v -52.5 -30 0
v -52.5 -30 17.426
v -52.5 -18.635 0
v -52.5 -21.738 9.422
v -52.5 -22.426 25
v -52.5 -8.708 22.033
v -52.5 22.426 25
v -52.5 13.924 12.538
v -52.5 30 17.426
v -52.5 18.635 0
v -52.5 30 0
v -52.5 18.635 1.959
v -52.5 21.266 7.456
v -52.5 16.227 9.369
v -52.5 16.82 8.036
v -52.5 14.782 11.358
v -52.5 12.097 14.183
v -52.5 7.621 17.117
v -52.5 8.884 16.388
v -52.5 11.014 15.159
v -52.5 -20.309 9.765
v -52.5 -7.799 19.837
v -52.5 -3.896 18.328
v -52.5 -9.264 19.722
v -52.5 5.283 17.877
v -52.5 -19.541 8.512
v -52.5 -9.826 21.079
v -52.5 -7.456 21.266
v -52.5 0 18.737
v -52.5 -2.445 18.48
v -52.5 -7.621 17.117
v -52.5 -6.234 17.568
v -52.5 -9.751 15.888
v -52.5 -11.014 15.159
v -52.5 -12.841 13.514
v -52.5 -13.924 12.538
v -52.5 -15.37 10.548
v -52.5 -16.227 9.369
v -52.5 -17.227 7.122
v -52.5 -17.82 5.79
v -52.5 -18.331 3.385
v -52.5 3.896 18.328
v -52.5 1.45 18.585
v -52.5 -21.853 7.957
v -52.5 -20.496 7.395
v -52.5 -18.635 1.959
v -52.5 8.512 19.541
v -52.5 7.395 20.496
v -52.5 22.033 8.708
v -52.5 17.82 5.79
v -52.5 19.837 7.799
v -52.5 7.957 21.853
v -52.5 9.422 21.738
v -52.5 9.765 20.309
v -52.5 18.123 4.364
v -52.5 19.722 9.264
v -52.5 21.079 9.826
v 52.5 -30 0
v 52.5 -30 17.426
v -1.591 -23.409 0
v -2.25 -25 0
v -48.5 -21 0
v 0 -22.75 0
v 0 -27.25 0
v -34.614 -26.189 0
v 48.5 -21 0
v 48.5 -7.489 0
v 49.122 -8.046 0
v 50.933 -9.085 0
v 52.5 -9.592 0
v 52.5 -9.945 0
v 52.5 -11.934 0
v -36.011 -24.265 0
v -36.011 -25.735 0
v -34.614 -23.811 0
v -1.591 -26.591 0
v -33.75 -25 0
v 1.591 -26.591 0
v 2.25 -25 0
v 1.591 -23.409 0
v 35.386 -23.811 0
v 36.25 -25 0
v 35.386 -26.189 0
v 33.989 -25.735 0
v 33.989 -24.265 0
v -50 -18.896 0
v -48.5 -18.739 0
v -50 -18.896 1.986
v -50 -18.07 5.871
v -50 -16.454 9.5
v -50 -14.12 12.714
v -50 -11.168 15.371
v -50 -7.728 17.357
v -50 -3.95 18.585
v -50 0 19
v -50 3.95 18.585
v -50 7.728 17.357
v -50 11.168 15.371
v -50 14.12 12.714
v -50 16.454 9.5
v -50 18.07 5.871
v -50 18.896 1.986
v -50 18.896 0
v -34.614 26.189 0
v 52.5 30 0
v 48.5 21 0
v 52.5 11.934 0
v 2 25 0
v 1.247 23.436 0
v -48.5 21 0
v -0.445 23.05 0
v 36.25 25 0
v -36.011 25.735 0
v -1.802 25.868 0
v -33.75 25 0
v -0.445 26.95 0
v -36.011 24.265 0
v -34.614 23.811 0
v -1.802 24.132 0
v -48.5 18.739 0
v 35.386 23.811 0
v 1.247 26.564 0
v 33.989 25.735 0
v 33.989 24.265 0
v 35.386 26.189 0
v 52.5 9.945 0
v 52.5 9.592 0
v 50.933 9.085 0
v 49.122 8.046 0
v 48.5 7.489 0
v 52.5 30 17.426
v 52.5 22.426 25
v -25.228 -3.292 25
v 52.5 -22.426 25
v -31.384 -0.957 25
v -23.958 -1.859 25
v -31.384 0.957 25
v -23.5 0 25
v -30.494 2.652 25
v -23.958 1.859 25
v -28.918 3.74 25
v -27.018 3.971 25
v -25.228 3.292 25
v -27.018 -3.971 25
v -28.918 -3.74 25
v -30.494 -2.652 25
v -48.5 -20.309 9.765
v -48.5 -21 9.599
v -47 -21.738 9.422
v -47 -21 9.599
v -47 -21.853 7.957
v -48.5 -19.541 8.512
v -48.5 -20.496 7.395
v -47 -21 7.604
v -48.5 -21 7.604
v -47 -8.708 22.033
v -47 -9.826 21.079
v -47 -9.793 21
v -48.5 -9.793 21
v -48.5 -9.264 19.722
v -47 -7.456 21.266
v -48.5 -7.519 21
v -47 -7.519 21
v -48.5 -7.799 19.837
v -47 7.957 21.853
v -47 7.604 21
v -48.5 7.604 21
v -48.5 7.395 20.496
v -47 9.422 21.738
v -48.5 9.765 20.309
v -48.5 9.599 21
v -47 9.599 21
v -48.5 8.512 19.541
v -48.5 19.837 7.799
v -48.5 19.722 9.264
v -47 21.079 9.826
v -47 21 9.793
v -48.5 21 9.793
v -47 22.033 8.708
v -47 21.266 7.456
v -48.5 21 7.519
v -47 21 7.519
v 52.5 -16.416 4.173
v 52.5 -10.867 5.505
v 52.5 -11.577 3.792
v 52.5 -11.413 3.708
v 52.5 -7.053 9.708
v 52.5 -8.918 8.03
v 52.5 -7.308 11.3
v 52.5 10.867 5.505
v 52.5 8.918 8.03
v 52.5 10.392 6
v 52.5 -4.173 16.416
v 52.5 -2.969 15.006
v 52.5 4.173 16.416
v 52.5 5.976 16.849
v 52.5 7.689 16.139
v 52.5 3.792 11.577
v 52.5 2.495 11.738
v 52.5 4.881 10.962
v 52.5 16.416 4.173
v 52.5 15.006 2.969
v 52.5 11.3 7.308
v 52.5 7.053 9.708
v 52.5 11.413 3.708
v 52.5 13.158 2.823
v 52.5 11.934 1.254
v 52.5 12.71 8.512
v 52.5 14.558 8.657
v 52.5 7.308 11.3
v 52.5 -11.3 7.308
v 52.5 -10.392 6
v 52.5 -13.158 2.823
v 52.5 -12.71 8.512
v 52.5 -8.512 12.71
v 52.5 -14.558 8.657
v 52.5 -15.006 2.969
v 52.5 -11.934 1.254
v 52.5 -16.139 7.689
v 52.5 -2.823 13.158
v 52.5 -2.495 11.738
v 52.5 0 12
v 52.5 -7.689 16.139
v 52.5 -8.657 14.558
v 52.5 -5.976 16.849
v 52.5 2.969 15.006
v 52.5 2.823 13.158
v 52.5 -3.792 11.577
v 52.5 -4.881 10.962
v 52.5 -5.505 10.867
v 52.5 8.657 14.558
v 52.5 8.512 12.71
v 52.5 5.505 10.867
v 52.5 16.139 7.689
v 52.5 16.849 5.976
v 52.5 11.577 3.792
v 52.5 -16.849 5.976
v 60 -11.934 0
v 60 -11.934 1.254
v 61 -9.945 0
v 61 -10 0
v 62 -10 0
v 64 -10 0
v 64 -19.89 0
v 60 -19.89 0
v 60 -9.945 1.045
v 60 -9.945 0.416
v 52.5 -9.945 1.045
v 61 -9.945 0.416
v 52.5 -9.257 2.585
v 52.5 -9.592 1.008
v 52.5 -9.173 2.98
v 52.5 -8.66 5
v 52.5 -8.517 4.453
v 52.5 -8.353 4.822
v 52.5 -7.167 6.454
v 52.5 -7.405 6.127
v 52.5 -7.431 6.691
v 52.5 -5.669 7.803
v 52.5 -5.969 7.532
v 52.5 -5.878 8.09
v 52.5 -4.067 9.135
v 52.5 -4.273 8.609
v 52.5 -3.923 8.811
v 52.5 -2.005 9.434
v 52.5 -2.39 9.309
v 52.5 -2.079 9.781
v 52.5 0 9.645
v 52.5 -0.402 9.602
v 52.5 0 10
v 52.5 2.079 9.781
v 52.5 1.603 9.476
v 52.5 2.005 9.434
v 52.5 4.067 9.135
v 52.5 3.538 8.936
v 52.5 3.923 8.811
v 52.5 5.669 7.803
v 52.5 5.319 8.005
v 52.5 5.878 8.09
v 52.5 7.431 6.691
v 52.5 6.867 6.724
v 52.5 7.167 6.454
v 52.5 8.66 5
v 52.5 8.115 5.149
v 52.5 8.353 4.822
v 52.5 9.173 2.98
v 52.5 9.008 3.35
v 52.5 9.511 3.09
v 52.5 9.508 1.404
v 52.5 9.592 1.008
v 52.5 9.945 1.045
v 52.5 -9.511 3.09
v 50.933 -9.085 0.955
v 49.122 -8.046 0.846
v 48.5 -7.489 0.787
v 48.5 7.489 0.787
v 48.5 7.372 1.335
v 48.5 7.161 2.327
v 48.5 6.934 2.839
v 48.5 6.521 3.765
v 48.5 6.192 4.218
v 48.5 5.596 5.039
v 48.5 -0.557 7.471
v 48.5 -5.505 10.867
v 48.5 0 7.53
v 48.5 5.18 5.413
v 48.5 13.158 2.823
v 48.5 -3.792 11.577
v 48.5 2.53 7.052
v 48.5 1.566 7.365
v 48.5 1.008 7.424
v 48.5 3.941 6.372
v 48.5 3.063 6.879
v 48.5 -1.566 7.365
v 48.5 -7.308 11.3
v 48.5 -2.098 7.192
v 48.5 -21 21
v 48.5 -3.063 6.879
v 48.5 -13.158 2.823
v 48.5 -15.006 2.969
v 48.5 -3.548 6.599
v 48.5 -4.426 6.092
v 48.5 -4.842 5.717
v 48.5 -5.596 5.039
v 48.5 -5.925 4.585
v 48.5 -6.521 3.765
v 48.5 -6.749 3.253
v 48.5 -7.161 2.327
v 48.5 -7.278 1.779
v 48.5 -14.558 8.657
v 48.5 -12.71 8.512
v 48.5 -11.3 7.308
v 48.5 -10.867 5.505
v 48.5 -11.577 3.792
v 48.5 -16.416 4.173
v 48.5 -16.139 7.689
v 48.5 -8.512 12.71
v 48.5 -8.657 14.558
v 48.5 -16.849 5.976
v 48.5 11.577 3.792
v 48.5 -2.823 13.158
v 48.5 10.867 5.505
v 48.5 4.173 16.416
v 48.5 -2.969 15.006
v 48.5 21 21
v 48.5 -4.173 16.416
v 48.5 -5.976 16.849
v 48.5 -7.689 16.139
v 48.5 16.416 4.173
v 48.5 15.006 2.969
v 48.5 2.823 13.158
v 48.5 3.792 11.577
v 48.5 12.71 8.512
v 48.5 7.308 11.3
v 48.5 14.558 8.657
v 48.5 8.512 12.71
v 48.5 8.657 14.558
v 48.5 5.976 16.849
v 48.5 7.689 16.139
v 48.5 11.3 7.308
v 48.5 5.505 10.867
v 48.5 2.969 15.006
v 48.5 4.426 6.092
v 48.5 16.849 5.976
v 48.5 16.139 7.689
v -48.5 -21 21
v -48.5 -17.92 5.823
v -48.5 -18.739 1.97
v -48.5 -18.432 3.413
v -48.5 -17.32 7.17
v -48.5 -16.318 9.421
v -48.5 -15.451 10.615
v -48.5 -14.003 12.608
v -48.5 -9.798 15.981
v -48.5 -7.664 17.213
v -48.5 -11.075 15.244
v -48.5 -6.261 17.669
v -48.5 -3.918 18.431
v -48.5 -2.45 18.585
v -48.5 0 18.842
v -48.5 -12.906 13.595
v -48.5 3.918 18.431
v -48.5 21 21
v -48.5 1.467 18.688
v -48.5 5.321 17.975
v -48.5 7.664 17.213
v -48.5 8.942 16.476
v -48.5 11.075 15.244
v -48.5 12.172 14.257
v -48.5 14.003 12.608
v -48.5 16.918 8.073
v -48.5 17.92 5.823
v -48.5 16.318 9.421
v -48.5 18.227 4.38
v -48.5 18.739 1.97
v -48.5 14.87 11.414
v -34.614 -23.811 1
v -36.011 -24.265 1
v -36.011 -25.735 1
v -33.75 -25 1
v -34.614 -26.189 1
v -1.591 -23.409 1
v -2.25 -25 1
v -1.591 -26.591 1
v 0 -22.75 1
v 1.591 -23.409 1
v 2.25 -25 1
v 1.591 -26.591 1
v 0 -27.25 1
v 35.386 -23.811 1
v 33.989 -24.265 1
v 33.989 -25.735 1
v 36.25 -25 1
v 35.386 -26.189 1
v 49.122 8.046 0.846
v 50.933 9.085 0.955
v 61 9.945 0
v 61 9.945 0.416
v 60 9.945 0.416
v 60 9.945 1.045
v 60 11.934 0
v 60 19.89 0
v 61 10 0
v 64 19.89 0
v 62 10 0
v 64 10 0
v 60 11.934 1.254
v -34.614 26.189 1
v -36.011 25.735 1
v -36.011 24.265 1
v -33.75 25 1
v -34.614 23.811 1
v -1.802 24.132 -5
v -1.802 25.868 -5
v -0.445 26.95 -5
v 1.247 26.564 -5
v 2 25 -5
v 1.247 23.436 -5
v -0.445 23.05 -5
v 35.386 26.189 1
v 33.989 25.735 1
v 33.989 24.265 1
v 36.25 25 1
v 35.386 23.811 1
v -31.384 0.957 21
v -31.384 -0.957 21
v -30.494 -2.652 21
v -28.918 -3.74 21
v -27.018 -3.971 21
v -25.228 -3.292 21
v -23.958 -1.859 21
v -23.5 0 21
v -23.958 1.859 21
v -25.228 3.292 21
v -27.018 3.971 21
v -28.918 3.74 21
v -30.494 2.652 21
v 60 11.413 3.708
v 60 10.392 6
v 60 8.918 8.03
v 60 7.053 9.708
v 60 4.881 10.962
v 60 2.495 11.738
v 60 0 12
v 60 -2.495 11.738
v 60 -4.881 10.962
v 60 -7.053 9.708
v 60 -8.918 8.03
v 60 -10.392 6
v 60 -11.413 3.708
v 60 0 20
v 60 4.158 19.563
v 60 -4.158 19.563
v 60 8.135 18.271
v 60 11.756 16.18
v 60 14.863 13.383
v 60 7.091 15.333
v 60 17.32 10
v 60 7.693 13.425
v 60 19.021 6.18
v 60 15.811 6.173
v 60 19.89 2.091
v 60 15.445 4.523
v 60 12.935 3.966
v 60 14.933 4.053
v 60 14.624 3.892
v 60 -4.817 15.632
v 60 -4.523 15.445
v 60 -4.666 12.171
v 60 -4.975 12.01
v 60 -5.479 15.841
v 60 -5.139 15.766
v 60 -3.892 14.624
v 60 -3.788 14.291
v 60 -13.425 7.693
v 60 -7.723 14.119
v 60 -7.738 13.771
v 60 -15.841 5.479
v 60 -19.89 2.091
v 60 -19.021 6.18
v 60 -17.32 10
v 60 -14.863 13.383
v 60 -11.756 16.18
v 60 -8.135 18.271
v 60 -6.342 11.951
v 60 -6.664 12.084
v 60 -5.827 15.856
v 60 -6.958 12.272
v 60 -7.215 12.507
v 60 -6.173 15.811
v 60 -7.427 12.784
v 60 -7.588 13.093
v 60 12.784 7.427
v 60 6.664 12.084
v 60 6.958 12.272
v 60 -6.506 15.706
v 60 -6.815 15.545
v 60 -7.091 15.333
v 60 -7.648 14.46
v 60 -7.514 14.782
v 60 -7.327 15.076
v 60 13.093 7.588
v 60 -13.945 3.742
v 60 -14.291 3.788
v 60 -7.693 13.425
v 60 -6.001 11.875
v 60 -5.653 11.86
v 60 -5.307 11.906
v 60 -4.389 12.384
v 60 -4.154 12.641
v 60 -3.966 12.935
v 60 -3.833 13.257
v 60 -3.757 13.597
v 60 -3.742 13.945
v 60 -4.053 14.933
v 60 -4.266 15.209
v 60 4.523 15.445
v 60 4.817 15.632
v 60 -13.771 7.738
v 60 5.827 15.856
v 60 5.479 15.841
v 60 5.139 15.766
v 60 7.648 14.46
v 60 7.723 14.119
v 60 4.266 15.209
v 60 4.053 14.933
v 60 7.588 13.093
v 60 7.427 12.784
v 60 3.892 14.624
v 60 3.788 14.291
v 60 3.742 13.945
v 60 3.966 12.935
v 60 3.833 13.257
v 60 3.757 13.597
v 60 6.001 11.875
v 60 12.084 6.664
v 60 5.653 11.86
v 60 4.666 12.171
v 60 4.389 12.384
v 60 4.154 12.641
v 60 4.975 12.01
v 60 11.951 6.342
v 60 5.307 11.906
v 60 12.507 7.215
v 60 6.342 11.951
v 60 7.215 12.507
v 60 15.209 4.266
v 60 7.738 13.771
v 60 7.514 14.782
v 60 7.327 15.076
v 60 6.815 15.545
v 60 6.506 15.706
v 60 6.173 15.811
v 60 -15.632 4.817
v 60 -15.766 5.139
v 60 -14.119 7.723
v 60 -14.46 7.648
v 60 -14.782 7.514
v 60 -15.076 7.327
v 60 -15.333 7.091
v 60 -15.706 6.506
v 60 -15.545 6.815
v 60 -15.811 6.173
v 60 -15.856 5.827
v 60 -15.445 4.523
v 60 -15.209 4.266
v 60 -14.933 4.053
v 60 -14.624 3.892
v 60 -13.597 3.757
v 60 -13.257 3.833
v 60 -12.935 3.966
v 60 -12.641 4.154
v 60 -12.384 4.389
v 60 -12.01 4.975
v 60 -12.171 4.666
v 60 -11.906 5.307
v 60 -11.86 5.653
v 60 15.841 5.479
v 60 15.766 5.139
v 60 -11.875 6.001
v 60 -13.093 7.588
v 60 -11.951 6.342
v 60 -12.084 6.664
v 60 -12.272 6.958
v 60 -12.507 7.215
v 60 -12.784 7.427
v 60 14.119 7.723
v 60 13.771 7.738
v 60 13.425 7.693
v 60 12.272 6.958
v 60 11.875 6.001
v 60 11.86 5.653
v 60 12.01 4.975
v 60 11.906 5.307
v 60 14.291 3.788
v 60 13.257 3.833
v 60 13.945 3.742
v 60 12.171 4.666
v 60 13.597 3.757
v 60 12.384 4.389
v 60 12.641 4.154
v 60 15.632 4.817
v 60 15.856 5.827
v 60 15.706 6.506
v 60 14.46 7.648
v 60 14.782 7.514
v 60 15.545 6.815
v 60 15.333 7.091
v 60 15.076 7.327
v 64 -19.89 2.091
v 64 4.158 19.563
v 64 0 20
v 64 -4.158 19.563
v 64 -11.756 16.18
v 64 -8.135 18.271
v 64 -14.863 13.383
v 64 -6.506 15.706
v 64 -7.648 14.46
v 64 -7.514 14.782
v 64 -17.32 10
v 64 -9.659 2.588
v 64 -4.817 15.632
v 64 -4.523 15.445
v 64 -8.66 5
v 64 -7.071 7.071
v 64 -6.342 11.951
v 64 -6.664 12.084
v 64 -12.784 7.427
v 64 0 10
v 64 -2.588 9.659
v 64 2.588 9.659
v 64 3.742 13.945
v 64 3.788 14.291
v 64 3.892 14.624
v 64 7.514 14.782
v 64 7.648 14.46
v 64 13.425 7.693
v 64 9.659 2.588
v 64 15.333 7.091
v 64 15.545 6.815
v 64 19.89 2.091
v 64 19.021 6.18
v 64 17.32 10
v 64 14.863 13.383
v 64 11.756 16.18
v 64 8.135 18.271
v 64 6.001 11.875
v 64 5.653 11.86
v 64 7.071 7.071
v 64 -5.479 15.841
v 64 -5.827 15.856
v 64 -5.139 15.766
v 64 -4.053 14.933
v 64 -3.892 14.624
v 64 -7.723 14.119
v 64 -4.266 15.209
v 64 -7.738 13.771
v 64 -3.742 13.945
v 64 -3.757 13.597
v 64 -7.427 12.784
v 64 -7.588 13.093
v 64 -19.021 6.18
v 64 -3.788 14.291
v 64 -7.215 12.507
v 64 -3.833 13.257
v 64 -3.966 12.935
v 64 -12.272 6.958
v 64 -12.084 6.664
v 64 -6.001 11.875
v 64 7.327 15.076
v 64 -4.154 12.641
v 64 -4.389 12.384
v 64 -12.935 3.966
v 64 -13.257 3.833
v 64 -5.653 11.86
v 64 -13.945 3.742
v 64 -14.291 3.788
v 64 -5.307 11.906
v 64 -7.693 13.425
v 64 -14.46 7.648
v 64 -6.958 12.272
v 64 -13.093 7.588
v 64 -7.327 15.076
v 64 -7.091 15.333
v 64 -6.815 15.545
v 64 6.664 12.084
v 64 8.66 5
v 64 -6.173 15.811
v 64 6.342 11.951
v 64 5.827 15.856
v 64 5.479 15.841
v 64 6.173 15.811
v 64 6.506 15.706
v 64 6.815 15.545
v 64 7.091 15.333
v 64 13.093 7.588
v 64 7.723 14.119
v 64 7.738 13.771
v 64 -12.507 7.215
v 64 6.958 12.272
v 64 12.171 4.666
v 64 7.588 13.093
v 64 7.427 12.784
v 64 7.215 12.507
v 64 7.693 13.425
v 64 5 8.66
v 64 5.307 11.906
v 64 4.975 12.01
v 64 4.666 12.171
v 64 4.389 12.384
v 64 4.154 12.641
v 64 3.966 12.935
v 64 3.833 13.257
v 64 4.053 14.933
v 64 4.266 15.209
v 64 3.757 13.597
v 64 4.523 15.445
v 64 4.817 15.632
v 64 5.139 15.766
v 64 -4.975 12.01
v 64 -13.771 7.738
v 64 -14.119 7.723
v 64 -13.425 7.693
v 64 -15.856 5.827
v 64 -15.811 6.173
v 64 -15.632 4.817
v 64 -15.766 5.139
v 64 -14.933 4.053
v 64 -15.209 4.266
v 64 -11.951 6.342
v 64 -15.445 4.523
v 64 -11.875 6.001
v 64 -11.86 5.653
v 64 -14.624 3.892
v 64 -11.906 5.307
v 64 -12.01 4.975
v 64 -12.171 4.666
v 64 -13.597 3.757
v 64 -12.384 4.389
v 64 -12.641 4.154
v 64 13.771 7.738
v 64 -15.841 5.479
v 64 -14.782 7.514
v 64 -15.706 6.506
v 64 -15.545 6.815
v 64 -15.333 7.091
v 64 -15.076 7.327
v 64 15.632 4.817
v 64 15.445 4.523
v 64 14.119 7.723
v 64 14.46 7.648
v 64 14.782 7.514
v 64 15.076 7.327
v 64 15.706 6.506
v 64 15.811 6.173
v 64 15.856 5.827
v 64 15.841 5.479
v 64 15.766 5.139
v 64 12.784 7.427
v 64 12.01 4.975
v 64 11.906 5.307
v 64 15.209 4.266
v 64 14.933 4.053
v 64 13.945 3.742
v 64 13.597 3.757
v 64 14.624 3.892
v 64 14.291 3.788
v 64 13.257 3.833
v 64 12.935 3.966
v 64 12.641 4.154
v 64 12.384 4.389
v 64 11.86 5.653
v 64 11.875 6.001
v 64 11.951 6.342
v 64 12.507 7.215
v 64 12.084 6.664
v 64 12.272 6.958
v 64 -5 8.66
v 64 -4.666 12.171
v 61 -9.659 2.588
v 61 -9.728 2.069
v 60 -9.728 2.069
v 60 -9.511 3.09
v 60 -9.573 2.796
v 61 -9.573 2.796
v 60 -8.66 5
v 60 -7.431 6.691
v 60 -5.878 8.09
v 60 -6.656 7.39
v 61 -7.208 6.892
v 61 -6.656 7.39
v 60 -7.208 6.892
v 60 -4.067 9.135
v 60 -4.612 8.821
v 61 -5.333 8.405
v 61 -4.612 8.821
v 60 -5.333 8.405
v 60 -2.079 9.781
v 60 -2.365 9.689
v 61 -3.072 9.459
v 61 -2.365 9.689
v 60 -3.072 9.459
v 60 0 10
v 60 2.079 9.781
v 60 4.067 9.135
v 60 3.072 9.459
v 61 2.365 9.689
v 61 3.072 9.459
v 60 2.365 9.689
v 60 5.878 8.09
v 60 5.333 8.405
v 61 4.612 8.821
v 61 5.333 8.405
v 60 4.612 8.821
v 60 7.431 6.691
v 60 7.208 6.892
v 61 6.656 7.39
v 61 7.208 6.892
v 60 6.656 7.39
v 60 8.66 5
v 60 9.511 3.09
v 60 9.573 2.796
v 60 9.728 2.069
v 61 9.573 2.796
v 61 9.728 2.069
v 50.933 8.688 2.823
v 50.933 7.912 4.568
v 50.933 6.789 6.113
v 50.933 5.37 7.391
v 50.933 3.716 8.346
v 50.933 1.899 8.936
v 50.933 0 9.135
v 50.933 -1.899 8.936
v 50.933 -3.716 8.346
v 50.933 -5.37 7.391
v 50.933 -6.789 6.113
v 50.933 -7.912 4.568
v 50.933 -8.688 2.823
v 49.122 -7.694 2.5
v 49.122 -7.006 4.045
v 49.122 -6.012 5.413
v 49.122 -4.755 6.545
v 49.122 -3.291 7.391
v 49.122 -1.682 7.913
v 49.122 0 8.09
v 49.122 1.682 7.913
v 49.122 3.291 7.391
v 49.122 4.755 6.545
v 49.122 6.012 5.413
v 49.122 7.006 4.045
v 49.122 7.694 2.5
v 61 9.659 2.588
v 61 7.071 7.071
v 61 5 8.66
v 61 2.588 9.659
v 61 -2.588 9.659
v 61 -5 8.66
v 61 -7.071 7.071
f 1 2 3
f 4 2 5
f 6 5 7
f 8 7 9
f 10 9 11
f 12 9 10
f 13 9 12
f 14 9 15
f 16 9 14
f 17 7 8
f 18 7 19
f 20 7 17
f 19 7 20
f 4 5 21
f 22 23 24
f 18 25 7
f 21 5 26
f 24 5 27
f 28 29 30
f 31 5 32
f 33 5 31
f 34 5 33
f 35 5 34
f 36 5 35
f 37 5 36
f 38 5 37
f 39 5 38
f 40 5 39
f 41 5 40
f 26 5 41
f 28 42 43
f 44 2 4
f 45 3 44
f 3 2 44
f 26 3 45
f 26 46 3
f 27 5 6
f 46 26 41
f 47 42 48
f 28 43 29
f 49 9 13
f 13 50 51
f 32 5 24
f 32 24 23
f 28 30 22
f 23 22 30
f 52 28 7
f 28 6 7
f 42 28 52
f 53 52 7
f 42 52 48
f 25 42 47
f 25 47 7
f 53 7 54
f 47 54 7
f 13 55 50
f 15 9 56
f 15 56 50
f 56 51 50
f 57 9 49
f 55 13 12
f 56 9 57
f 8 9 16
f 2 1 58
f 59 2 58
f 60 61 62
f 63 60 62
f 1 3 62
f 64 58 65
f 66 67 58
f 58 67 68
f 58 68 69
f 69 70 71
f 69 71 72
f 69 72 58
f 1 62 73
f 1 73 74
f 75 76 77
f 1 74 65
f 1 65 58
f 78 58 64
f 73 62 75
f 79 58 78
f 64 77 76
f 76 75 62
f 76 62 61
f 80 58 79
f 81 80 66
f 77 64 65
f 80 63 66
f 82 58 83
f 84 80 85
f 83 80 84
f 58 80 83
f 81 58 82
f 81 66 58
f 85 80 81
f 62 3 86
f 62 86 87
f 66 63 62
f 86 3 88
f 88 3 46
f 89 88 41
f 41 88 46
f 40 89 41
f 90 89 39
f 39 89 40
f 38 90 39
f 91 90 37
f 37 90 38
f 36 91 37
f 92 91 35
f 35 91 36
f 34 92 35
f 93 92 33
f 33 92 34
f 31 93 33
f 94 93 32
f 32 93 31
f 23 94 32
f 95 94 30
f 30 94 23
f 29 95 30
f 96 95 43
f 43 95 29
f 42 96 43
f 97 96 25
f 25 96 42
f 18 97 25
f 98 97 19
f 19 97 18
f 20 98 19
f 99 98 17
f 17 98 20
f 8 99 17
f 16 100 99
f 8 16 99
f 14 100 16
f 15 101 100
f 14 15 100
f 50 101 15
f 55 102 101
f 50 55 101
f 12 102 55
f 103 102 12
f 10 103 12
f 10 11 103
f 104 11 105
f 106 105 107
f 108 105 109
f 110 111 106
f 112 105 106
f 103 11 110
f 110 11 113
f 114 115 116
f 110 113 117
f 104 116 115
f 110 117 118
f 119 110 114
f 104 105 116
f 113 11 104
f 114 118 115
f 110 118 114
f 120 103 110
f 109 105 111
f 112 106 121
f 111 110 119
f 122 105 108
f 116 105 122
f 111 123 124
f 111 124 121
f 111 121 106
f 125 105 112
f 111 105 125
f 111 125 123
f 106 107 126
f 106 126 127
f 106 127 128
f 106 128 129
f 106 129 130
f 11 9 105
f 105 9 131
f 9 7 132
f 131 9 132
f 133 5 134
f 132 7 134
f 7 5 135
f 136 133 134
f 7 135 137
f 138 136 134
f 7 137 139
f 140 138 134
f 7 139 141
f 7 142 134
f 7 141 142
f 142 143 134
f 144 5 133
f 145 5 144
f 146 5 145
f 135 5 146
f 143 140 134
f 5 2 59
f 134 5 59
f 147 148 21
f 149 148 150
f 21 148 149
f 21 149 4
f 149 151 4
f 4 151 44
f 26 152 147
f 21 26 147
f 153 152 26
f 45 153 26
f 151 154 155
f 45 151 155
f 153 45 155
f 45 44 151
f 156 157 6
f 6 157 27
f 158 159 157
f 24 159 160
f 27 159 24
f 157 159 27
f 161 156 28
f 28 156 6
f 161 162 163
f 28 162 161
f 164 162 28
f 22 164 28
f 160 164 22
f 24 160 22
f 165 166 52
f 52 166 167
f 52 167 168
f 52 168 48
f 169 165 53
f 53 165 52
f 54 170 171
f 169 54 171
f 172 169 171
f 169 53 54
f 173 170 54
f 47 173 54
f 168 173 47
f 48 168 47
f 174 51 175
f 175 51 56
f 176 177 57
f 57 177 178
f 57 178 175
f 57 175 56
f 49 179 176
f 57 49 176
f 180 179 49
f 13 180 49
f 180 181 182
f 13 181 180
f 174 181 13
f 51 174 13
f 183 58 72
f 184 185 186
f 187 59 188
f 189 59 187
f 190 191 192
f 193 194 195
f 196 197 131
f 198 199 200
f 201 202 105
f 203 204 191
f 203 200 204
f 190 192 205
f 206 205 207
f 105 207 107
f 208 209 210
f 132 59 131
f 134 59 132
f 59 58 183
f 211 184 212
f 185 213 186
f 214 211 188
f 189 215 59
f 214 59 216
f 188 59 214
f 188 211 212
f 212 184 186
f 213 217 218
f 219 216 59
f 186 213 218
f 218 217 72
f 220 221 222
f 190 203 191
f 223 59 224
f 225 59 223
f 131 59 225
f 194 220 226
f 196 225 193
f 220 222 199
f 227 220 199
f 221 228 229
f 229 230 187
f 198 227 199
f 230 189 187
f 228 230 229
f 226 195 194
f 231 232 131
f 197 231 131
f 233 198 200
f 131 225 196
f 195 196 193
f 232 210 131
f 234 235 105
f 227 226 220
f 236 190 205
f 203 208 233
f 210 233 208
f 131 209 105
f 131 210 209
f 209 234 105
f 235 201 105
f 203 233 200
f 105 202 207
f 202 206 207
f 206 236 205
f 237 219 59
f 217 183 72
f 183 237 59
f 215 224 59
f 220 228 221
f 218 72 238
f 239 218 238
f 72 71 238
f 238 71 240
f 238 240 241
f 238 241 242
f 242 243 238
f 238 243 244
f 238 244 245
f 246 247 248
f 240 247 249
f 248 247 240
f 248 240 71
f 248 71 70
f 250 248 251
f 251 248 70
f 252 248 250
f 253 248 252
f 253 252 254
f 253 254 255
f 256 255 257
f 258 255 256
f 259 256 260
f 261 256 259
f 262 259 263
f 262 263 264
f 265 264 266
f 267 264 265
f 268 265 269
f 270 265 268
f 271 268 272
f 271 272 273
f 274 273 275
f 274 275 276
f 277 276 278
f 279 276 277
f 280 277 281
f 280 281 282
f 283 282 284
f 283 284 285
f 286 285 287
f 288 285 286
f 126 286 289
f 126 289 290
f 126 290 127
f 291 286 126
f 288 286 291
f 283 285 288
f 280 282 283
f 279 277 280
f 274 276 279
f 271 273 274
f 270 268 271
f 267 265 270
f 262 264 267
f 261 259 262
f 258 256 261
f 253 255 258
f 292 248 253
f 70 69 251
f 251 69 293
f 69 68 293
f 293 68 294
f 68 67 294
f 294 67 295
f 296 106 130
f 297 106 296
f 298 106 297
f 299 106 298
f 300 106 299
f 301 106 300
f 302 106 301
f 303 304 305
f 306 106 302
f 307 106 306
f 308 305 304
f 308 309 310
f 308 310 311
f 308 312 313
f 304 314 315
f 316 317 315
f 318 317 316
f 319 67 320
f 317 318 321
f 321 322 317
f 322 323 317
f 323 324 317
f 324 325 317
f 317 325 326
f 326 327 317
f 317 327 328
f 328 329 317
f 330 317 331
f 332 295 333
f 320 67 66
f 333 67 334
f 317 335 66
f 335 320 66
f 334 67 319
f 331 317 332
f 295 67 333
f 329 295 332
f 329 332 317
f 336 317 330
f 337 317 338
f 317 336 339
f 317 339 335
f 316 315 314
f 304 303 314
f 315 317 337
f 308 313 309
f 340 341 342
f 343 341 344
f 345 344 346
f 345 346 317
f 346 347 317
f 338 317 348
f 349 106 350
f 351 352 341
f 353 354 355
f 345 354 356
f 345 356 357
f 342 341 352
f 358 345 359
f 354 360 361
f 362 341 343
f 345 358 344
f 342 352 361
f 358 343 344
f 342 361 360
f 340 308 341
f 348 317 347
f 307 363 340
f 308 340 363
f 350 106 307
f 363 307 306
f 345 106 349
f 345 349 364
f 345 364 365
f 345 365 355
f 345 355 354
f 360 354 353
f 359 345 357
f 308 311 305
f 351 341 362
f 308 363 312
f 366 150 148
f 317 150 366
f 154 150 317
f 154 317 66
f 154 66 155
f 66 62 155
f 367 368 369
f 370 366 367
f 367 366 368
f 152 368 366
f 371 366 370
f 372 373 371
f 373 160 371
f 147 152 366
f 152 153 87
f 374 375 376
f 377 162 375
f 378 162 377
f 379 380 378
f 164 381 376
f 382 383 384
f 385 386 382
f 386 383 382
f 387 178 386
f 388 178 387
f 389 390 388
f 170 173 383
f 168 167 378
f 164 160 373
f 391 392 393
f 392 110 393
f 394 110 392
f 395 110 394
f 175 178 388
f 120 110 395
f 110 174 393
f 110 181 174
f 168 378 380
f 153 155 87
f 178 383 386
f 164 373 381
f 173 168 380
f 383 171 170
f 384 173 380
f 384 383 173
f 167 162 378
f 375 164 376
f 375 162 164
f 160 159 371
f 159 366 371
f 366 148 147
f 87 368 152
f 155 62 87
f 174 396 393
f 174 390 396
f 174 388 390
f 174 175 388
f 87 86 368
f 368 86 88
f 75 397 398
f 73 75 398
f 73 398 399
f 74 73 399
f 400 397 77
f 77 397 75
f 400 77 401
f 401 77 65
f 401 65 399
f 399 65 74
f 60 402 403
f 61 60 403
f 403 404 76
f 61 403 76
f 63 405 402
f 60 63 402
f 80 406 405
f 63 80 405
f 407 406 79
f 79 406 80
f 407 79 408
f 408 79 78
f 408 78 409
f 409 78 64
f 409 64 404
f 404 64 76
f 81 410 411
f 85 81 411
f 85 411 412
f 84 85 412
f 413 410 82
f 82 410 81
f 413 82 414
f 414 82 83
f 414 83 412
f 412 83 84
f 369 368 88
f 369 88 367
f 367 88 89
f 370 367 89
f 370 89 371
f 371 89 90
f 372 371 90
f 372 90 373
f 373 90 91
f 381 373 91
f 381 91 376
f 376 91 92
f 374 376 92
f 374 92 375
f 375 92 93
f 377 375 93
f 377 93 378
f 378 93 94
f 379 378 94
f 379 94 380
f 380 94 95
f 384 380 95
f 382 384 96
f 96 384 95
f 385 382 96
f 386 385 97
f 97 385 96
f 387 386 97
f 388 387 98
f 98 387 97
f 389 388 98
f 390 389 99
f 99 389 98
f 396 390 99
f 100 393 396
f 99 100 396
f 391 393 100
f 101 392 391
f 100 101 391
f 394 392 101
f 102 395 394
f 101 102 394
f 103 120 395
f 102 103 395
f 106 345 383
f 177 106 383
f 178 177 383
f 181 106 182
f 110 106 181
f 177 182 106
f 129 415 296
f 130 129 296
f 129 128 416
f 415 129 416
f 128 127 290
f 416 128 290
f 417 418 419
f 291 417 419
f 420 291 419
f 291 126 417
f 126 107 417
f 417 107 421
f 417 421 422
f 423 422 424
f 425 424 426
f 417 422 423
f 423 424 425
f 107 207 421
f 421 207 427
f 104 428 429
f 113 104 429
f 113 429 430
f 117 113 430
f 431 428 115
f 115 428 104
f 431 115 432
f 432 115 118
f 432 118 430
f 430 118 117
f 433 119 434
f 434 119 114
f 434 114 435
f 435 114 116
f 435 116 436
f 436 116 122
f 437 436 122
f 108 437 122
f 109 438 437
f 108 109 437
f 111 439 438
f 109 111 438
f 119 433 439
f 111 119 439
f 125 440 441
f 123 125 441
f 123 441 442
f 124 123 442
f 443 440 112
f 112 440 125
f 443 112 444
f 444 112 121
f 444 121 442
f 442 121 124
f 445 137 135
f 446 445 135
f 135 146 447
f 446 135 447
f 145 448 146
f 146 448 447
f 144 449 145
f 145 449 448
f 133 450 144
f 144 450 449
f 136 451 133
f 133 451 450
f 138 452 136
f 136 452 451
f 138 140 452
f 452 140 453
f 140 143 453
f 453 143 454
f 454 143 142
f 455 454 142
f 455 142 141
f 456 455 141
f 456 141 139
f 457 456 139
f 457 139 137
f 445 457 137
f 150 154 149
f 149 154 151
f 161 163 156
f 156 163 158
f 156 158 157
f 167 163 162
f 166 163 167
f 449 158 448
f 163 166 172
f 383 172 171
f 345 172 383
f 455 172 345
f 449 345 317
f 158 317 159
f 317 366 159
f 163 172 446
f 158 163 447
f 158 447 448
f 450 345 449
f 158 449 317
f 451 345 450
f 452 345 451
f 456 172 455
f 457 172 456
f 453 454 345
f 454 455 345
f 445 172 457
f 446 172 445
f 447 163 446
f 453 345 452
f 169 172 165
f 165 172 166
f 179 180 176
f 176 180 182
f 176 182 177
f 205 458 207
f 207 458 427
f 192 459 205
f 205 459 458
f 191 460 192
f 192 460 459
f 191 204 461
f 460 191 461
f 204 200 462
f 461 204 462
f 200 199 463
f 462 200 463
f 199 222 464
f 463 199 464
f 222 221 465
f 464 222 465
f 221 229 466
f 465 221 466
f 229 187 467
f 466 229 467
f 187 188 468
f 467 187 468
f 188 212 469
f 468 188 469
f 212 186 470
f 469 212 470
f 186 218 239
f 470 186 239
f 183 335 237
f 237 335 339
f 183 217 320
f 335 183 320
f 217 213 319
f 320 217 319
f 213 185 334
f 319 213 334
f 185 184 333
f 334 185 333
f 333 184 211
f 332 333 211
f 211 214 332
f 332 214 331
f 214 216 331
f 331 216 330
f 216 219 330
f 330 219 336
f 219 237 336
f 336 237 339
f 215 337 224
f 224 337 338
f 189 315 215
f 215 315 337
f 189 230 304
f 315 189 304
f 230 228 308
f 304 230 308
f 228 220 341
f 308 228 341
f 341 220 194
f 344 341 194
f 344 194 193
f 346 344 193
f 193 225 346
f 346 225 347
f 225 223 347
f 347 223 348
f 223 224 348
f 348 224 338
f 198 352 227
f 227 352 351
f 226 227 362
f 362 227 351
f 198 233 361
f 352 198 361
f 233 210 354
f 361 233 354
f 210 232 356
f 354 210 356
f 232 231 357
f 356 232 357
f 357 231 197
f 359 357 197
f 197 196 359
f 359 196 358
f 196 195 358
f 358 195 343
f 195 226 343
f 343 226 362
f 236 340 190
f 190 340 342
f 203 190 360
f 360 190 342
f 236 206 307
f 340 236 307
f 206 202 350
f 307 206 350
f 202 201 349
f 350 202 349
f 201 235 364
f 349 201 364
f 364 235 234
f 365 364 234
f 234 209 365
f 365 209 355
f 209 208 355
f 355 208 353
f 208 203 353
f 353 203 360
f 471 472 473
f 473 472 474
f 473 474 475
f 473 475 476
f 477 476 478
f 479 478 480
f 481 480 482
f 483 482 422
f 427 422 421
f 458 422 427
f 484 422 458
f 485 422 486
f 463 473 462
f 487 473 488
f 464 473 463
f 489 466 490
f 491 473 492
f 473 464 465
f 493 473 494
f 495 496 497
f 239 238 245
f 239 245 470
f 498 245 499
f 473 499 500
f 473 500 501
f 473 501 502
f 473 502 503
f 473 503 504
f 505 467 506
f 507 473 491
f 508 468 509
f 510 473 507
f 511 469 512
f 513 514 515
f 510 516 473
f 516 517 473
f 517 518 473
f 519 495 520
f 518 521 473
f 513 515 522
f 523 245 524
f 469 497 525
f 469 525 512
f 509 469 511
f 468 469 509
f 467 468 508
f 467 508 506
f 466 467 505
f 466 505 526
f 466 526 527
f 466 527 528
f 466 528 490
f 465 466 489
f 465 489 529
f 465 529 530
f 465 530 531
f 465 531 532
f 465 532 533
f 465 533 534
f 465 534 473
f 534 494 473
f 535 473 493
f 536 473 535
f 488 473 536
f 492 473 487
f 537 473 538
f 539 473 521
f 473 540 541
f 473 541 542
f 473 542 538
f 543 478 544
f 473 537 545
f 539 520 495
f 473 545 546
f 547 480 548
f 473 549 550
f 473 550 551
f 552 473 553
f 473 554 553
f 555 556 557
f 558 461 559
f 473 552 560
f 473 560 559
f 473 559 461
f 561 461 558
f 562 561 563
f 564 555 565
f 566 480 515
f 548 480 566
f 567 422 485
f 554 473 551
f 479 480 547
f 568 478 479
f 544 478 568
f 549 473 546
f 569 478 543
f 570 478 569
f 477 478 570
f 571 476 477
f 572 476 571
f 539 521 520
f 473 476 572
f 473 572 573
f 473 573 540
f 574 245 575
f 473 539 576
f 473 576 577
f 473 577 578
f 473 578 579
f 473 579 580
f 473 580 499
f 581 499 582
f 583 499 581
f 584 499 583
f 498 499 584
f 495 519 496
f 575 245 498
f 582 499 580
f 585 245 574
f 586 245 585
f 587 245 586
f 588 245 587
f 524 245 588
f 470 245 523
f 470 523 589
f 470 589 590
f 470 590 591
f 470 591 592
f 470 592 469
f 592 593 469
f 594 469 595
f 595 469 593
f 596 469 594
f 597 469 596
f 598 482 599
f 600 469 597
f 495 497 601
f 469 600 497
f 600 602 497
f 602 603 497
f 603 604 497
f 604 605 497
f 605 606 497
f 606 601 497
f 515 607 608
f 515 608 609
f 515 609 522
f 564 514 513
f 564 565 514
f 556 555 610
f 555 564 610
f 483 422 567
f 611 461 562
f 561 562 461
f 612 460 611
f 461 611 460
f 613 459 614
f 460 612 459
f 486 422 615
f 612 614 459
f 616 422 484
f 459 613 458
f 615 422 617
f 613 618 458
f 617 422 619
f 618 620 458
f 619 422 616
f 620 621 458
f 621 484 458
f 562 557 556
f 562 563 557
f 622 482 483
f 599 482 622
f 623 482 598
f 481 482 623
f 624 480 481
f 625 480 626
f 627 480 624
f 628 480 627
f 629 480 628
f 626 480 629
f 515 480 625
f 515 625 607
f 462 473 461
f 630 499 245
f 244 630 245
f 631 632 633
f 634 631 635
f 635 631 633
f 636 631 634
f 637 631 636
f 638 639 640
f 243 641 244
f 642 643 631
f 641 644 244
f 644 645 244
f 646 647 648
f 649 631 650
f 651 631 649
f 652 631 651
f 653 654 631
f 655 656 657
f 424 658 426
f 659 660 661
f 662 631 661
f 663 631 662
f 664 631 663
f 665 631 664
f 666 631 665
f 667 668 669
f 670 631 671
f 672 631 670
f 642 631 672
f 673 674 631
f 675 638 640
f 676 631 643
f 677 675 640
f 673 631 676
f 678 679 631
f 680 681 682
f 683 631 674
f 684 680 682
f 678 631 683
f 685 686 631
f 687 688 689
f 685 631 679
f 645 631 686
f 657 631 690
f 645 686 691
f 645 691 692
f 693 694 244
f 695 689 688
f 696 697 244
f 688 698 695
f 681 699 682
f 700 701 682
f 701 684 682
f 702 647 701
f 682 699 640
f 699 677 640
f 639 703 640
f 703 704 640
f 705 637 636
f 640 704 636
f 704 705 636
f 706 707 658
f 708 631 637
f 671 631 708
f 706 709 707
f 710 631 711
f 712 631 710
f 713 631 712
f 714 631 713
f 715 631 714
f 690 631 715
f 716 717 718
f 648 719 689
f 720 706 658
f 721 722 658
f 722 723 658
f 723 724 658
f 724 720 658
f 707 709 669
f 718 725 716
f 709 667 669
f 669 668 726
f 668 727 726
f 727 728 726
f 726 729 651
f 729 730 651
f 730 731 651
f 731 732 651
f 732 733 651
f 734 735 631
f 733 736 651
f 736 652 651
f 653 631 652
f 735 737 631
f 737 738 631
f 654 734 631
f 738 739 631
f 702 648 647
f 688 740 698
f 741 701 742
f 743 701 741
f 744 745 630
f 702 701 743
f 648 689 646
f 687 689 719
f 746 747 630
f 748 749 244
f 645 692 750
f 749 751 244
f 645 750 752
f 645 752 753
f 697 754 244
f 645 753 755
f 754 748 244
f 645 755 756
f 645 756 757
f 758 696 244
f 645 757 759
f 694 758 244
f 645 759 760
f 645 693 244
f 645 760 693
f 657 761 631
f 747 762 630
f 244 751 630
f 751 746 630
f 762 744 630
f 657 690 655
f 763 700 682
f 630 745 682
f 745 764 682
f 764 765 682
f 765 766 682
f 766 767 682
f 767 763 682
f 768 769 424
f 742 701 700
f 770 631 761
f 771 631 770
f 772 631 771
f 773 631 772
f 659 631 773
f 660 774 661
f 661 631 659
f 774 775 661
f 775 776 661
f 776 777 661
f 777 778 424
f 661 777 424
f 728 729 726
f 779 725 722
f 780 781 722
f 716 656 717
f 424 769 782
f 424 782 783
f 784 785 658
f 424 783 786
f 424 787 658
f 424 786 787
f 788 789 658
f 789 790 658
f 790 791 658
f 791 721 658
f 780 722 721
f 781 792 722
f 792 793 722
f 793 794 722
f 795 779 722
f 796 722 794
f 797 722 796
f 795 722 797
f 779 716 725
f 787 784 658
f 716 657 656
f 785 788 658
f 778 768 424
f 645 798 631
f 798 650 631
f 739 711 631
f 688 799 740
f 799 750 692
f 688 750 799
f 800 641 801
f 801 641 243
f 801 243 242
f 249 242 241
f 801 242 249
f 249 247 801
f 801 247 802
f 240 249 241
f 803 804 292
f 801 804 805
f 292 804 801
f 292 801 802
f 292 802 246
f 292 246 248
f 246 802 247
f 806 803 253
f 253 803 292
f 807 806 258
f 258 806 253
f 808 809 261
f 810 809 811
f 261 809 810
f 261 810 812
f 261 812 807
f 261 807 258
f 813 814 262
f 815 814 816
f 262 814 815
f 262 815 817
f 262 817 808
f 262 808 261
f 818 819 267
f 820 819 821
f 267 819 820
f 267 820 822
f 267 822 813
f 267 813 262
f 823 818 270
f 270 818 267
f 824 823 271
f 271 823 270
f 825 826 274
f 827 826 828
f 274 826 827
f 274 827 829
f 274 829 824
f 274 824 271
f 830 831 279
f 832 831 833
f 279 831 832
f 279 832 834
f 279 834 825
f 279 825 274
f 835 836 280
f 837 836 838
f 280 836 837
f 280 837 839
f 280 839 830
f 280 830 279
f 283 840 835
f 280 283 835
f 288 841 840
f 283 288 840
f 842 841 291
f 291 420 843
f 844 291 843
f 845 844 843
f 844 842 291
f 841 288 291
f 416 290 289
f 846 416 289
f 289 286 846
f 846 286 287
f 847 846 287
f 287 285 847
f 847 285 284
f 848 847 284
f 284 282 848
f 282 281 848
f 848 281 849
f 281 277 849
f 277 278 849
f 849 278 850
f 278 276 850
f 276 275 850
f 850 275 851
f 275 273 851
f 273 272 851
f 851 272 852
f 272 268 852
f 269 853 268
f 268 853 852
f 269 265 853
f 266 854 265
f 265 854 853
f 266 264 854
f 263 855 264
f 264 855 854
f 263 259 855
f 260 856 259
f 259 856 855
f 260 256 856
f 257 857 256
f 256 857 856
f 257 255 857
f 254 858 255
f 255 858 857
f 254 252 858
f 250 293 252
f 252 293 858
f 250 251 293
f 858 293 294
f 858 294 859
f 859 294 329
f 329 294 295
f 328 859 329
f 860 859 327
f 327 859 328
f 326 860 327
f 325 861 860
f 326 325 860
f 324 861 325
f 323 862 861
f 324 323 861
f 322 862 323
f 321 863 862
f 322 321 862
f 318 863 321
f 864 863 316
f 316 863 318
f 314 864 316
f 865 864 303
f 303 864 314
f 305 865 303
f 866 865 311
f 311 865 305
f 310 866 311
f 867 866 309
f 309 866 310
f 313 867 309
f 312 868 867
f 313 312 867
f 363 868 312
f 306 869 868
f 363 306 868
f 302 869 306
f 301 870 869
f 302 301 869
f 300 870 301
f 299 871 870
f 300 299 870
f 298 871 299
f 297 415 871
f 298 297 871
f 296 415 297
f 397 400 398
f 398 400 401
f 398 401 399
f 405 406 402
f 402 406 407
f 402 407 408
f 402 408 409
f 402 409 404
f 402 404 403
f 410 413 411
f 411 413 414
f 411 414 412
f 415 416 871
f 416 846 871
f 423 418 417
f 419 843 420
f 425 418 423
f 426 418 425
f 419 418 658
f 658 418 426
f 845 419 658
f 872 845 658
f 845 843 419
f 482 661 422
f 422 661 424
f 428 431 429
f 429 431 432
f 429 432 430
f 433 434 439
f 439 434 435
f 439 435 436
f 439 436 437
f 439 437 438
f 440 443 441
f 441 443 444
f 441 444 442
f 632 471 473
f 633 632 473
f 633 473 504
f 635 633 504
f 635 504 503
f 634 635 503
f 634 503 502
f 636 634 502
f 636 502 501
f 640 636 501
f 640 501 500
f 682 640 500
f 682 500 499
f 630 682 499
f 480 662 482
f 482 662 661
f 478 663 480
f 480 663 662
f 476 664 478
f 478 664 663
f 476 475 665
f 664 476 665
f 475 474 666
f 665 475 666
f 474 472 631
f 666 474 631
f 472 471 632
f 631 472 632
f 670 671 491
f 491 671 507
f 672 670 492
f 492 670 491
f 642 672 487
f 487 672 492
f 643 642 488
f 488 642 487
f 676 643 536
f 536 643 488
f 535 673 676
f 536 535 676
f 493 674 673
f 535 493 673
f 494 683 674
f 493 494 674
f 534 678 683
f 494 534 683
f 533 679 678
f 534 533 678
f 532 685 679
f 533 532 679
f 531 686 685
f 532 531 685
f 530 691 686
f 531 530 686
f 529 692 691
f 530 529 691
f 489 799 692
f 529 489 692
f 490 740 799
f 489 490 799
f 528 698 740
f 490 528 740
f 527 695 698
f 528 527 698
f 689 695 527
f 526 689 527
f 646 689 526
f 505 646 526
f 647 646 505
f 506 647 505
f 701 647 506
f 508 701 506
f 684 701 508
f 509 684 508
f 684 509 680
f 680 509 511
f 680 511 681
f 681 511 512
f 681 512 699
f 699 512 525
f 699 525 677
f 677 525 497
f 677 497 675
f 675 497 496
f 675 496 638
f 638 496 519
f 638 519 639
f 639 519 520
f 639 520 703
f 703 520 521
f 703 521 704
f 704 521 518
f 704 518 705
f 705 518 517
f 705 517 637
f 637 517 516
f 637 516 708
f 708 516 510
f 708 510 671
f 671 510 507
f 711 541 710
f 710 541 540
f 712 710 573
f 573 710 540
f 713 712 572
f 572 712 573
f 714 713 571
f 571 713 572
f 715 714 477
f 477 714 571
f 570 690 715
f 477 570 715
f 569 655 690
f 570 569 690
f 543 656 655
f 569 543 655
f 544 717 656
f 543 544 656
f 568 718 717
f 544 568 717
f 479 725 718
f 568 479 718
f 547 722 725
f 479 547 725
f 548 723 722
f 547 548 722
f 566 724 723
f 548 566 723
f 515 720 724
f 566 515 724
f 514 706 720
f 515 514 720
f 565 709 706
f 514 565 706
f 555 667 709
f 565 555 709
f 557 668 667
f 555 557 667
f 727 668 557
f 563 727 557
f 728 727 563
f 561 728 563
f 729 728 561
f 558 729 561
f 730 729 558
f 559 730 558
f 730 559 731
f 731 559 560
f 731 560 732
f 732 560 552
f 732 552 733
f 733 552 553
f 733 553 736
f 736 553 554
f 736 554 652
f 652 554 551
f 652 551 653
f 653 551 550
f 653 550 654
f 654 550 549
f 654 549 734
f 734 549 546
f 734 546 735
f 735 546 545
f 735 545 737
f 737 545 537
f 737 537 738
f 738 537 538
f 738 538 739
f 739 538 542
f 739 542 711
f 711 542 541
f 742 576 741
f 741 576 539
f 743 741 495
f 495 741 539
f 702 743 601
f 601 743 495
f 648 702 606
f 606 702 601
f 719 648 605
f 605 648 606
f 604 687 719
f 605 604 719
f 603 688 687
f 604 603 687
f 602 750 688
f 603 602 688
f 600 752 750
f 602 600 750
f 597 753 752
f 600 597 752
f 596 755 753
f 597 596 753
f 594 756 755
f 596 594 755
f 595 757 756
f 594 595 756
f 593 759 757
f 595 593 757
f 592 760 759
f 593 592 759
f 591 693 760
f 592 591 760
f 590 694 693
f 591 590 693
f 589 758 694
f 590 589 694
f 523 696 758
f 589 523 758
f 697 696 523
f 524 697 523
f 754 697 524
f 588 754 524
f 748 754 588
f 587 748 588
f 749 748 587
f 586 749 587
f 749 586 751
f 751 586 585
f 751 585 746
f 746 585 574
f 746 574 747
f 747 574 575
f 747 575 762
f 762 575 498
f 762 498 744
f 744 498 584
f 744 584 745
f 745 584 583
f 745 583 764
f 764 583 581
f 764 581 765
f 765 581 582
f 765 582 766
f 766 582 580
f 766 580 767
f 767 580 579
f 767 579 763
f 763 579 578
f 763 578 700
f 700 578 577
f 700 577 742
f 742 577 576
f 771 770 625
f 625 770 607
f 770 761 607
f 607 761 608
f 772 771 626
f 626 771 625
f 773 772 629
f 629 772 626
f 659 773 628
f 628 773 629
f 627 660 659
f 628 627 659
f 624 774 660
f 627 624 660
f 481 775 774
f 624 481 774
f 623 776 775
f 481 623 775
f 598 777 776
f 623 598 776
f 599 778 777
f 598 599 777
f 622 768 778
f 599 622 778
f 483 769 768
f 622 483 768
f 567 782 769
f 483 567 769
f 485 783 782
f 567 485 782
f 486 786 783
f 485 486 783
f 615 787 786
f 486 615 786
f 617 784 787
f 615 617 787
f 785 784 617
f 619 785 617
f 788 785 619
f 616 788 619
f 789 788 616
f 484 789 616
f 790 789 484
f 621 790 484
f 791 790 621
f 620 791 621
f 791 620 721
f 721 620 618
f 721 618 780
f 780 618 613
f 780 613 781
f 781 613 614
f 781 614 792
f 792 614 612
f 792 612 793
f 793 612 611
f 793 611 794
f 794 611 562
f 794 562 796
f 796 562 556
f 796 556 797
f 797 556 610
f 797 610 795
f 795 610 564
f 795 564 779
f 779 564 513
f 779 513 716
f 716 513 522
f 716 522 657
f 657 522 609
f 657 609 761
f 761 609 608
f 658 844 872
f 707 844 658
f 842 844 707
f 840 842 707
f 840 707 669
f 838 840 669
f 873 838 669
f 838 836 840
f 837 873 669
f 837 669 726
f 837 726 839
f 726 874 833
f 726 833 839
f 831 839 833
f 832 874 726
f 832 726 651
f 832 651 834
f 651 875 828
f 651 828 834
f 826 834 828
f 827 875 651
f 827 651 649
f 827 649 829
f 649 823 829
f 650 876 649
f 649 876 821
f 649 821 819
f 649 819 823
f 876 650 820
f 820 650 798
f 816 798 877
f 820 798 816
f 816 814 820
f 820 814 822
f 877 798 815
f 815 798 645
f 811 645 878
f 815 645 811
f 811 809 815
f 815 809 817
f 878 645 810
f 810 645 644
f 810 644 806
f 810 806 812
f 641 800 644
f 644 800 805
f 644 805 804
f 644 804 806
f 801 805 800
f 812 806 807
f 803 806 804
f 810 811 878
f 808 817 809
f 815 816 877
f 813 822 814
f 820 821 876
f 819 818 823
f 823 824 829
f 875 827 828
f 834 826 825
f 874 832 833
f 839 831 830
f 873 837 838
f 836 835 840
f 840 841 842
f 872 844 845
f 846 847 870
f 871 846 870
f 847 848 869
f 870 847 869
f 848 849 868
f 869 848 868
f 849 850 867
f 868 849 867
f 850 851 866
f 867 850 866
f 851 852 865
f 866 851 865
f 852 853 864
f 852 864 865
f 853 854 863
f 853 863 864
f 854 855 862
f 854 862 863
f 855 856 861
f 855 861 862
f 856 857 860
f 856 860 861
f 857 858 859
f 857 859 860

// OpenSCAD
module outerCasing_top(){
	union(){
		difference(){
			intersection(){
				//outsideBox
				translate([0,0,12.5]) cube(size=[105,60,25],center=true);
				//bevels
				translate([0,0,5]) rotate([45,0,0]) cube(size=[106,60,60],center=true);
			}
			union(){
				//innerBox
				cube(size=[97,42,42],center=true);
				//fanCutout
				translate([-50,0,0]) rotate([0,90,0]) sphere(r=19,center=true);
				//laserOutput
				translate([55,0,0]) rotate([0,90,0]) sphere(r=10,center=true);
			}
			//powerCable
			translate([-27.5,0,20]) rotate([0,0,0]) cylinder(h=12,r=4,center=true);
			//rearMountingScrewHoles
			rotate([22.5,0,0]){
				for ( x = [0 : 7] ){
					rotate( x * 360 / 8, [1, 0, 0]){
						translate([-50, 22.5, 0]){
							rotate([0,90,0]){
								cylinder(r=1.25,h=6,center=true);
							}
						}
					}
				}
			}
			//ventilationHoles
			rotate([22.5,0,0]){
				for ( z = [0 : 7] ){
					rotate( z * 360 / 8, [1, 0, 0]){
						translate([50, 15, 0]){
							rotate([0,90,0]){
								cylinder(r=3,h=7,center=true);
							}
						}
					}
				}
			}
			//screwHoles
			translate([35,-25,-4]) cylinder(h=10,r=1.25,center=true);
			translate([-35,25,-4]) cylinder(h=10,r=1.25,center=true);
			translate([35,25,-4]) cylinder(h=10,r=1.25,center=true);
			translate([-35,-25,-4]) cylinder(h=10,r=1.25,center=true);
			//alignmentPeg1
			translate([0,-25,-4]) cylinder(h=10,r=2.25,center=true);
		}
		//alignmentPeg2
		translate([0,25,0]) cylinder(h=10,r=2,center=true);
	}
}

module flange(){
	difference(){
		//throat
		translate([55,0,0]) rotate([0,90,0]) cylinder(h=12,r=12,center=true);
		//tubeBody
		translate([55,0,0]) rotate([0,90,0]) cylinder(h=13,r=10,center=true);
		//topHalfCutoff
		translate([55,0,-6.5]) cube(size=[13,30,13],center=true);
	}
}

module flangeFace(){
	difference(){
		union(){
			difference(){
				//flange
				translate([62,0,0]) rotate([0,90,0]) cylinder(r=20,h=4,center=true);
				//flangeThroat
				translate([62,0,0]) rotate([0,90,0]) cylinder(r=10,h=5,$fn=24,center=true);
			}
		}
		//tubeMountingHoles
		rotate([22.5,0,0]){
			for ( v = [0 : 8] ){
				rotate( v * 360 / 8, [1, 0, 0]){
					translate([62, 15, 0]){
						rotate([0,90,0]){
							cylinder(r=2,h=5,$fn=36,center=true);
						}
					}
				}
			}
		}
		//topHalfCutoff
		translate([55,0,-12.5]){
			cube(size=[20,50,25],center=true);
		}
	}
}

module structural_mount_laser_top(){
	union(){
		outerCasing_top();
		flange();
		flangeFace();
	}
}

structural_mount_laser_top();
